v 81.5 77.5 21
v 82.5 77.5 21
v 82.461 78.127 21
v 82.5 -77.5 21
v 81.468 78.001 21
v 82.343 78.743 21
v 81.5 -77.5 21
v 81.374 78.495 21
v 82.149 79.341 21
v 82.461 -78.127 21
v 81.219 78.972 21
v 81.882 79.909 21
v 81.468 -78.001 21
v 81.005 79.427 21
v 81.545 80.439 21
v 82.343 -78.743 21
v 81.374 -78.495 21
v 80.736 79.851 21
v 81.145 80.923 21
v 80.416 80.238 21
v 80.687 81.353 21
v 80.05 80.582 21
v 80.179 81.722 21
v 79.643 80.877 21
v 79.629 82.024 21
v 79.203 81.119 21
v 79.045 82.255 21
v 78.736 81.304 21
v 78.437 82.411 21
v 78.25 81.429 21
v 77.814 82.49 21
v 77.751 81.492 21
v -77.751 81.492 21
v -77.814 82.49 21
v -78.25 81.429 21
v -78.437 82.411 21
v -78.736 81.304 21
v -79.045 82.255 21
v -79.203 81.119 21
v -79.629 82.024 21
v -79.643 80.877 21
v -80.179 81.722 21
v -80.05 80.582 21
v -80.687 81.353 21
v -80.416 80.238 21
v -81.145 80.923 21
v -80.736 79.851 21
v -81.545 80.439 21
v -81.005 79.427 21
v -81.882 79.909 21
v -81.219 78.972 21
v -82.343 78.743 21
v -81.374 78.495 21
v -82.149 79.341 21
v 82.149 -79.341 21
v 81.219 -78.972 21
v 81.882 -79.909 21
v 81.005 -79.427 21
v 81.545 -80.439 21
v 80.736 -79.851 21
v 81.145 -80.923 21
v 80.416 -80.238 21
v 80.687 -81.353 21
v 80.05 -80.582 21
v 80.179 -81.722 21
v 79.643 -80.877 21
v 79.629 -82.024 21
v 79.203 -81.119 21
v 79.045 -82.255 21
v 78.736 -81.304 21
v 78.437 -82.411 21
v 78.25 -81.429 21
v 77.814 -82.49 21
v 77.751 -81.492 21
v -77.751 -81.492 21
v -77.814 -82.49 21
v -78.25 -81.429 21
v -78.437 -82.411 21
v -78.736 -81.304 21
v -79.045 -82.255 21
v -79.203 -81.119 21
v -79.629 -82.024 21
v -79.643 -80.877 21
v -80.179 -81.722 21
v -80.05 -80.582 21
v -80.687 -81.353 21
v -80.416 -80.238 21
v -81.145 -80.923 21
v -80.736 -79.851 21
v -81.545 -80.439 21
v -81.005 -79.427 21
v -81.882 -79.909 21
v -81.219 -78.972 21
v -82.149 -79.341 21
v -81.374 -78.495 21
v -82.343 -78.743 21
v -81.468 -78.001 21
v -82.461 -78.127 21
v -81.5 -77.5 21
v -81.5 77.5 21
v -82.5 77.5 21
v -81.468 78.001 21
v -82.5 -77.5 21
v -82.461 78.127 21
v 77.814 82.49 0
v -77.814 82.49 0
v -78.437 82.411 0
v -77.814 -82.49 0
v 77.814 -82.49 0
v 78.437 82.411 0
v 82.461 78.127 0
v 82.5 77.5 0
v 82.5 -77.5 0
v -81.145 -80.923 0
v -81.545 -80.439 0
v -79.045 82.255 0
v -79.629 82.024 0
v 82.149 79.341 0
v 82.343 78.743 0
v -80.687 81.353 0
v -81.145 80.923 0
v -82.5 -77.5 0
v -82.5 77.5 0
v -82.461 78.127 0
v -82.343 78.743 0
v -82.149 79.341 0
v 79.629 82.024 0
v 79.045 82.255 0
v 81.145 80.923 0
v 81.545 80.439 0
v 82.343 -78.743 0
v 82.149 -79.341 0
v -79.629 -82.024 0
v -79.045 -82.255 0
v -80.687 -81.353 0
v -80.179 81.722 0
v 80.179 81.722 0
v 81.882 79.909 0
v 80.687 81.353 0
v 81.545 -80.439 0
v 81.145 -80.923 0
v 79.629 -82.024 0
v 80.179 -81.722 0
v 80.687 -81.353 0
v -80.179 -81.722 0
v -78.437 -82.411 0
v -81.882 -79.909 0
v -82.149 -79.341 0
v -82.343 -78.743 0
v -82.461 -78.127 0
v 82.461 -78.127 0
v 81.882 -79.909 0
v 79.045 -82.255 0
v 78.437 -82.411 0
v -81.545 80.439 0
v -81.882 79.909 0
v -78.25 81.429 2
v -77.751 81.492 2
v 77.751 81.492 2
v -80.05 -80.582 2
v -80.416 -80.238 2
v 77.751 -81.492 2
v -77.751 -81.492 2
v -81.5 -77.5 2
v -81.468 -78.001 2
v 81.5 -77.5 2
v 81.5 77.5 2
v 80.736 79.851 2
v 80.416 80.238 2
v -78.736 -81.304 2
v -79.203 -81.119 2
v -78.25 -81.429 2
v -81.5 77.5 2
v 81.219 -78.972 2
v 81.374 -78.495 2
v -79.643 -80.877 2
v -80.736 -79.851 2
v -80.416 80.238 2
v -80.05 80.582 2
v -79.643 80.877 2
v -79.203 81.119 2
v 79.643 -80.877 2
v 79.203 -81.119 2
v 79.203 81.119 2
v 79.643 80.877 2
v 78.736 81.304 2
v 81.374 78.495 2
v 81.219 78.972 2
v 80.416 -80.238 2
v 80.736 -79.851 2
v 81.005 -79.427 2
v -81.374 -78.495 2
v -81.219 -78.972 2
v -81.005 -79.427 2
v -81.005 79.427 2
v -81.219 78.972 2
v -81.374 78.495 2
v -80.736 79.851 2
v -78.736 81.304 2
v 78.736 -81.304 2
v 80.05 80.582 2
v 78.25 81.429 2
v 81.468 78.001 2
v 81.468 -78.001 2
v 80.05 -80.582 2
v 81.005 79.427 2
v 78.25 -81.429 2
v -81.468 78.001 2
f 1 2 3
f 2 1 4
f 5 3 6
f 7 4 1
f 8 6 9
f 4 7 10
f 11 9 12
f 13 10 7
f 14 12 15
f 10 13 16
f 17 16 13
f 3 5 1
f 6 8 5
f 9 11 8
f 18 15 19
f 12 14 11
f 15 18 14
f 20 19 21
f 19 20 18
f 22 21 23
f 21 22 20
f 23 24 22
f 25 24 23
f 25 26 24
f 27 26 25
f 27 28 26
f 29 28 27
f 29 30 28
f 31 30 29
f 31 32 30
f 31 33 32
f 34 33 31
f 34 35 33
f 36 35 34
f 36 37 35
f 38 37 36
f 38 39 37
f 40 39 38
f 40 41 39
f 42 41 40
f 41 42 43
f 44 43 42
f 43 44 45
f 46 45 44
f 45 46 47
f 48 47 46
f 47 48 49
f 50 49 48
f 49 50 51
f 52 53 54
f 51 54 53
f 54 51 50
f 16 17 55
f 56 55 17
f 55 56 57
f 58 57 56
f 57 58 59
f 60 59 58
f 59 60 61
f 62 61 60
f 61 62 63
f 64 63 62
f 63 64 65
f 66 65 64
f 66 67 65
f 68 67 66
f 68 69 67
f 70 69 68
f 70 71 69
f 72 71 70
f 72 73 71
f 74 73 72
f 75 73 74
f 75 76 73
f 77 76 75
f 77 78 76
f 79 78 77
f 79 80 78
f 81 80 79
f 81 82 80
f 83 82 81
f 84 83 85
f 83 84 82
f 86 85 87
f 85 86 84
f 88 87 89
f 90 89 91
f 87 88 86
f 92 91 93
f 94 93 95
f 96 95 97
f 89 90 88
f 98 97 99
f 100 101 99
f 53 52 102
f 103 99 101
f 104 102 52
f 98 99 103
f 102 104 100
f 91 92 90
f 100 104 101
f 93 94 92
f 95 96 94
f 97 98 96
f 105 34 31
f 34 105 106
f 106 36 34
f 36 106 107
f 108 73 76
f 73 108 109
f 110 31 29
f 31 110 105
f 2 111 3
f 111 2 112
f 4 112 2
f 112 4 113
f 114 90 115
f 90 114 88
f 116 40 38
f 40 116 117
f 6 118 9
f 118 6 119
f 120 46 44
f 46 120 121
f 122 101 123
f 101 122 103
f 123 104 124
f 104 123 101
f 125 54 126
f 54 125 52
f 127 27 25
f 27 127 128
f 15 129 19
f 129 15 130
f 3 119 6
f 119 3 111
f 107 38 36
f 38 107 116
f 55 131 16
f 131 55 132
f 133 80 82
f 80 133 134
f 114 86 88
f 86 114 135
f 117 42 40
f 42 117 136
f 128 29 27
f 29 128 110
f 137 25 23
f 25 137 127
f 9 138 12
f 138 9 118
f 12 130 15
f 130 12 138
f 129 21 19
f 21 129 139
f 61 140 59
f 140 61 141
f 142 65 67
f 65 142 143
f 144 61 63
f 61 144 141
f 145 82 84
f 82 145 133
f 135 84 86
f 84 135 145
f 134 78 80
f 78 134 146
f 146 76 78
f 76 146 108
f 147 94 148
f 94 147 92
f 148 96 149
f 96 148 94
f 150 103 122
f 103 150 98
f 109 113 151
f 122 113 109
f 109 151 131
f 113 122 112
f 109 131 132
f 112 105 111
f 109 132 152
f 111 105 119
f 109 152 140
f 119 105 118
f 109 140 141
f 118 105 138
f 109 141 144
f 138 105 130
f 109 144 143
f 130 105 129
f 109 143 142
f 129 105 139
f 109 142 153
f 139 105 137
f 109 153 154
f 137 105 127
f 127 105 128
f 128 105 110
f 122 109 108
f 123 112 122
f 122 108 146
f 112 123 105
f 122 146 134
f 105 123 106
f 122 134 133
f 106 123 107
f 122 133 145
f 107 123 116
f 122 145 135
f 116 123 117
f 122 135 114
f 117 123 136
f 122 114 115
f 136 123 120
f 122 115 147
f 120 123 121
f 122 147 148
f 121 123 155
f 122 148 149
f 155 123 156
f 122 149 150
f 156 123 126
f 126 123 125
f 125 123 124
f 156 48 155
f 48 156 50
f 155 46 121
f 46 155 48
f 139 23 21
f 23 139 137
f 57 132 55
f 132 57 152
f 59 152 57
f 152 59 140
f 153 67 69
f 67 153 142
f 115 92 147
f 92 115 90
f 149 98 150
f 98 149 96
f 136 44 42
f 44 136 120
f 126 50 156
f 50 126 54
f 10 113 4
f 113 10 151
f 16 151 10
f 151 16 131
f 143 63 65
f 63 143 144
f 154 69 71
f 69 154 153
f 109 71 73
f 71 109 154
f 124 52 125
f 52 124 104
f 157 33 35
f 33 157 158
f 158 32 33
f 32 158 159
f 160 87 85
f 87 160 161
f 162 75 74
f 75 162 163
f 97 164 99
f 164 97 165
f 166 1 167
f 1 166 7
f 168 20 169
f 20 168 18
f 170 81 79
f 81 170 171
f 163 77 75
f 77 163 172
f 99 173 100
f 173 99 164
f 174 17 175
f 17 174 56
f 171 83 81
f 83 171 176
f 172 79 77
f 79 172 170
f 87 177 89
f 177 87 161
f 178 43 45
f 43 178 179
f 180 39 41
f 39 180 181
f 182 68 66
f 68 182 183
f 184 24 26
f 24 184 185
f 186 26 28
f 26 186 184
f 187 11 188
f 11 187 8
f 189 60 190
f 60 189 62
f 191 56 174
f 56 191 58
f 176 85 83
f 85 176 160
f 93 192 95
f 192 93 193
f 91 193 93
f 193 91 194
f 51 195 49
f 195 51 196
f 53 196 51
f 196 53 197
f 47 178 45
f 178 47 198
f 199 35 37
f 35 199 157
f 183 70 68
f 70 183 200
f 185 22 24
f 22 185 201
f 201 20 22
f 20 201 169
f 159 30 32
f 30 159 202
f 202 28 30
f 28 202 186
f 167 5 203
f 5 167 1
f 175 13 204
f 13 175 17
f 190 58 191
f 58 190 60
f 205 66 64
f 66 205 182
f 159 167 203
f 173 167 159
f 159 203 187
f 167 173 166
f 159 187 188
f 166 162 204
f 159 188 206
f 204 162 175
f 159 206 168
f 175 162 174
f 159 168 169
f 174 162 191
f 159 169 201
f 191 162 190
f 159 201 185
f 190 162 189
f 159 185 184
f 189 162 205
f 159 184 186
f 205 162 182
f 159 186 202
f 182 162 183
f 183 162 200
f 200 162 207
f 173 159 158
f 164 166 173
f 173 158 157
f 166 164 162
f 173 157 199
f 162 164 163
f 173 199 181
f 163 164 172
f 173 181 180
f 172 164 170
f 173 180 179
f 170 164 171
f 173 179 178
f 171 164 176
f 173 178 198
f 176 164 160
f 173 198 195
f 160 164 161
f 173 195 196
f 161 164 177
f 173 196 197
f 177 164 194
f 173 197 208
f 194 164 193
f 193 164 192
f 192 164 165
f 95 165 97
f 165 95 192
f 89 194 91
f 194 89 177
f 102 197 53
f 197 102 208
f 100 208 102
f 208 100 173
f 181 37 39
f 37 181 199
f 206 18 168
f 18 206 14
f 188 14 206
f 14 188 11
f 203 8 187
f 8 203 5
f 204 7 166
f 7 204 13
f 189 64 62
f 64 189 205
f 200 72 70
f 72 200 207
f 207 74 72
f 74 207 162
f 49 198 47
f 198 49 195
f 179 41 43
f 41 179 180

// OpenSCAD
$fn = 50;


difference() {
	union() {
		hull() {
			translate(v = [-77.5000000000, 77.5000000000, 0]) {
				cylinder(h = 21, r = 5);
			}
			translate(v = [77.5000000000, 77.5000000000, 0]) {
				cylinder(h = 21, r = 5);
			}
			translate(v = [-77.5000000000, -77.5000000000, 0]) {
				cylinder(h = 21, r = 5);
			}
			translate(v = [77.5000000000, -77.5000000000, 0]) {
				cylinder(h = 21, r = 5);
			}
		}
	}
	union() {
		translate(v = [0, 0, 2]) {
			hull() {
				translate(v = [-77.5000000000, 77.5000000000, 0]) {
					cylinder(h = 19, r = 4);
				}
				translate(v = [77.5000000000, 77.5000000000, 0]) {
					cylinder(h = 19, r = 4);
				}
				translate(v = [-77.5000000000, -77.5000000000, 0]) {
					cylinder(h = 19, r = 4);
				}
				translate(v = [77.5000000000, -77.5000000000, 0]) {
					cylinder(h = 19, r = 4);
				}
			}
		}
	}
}
